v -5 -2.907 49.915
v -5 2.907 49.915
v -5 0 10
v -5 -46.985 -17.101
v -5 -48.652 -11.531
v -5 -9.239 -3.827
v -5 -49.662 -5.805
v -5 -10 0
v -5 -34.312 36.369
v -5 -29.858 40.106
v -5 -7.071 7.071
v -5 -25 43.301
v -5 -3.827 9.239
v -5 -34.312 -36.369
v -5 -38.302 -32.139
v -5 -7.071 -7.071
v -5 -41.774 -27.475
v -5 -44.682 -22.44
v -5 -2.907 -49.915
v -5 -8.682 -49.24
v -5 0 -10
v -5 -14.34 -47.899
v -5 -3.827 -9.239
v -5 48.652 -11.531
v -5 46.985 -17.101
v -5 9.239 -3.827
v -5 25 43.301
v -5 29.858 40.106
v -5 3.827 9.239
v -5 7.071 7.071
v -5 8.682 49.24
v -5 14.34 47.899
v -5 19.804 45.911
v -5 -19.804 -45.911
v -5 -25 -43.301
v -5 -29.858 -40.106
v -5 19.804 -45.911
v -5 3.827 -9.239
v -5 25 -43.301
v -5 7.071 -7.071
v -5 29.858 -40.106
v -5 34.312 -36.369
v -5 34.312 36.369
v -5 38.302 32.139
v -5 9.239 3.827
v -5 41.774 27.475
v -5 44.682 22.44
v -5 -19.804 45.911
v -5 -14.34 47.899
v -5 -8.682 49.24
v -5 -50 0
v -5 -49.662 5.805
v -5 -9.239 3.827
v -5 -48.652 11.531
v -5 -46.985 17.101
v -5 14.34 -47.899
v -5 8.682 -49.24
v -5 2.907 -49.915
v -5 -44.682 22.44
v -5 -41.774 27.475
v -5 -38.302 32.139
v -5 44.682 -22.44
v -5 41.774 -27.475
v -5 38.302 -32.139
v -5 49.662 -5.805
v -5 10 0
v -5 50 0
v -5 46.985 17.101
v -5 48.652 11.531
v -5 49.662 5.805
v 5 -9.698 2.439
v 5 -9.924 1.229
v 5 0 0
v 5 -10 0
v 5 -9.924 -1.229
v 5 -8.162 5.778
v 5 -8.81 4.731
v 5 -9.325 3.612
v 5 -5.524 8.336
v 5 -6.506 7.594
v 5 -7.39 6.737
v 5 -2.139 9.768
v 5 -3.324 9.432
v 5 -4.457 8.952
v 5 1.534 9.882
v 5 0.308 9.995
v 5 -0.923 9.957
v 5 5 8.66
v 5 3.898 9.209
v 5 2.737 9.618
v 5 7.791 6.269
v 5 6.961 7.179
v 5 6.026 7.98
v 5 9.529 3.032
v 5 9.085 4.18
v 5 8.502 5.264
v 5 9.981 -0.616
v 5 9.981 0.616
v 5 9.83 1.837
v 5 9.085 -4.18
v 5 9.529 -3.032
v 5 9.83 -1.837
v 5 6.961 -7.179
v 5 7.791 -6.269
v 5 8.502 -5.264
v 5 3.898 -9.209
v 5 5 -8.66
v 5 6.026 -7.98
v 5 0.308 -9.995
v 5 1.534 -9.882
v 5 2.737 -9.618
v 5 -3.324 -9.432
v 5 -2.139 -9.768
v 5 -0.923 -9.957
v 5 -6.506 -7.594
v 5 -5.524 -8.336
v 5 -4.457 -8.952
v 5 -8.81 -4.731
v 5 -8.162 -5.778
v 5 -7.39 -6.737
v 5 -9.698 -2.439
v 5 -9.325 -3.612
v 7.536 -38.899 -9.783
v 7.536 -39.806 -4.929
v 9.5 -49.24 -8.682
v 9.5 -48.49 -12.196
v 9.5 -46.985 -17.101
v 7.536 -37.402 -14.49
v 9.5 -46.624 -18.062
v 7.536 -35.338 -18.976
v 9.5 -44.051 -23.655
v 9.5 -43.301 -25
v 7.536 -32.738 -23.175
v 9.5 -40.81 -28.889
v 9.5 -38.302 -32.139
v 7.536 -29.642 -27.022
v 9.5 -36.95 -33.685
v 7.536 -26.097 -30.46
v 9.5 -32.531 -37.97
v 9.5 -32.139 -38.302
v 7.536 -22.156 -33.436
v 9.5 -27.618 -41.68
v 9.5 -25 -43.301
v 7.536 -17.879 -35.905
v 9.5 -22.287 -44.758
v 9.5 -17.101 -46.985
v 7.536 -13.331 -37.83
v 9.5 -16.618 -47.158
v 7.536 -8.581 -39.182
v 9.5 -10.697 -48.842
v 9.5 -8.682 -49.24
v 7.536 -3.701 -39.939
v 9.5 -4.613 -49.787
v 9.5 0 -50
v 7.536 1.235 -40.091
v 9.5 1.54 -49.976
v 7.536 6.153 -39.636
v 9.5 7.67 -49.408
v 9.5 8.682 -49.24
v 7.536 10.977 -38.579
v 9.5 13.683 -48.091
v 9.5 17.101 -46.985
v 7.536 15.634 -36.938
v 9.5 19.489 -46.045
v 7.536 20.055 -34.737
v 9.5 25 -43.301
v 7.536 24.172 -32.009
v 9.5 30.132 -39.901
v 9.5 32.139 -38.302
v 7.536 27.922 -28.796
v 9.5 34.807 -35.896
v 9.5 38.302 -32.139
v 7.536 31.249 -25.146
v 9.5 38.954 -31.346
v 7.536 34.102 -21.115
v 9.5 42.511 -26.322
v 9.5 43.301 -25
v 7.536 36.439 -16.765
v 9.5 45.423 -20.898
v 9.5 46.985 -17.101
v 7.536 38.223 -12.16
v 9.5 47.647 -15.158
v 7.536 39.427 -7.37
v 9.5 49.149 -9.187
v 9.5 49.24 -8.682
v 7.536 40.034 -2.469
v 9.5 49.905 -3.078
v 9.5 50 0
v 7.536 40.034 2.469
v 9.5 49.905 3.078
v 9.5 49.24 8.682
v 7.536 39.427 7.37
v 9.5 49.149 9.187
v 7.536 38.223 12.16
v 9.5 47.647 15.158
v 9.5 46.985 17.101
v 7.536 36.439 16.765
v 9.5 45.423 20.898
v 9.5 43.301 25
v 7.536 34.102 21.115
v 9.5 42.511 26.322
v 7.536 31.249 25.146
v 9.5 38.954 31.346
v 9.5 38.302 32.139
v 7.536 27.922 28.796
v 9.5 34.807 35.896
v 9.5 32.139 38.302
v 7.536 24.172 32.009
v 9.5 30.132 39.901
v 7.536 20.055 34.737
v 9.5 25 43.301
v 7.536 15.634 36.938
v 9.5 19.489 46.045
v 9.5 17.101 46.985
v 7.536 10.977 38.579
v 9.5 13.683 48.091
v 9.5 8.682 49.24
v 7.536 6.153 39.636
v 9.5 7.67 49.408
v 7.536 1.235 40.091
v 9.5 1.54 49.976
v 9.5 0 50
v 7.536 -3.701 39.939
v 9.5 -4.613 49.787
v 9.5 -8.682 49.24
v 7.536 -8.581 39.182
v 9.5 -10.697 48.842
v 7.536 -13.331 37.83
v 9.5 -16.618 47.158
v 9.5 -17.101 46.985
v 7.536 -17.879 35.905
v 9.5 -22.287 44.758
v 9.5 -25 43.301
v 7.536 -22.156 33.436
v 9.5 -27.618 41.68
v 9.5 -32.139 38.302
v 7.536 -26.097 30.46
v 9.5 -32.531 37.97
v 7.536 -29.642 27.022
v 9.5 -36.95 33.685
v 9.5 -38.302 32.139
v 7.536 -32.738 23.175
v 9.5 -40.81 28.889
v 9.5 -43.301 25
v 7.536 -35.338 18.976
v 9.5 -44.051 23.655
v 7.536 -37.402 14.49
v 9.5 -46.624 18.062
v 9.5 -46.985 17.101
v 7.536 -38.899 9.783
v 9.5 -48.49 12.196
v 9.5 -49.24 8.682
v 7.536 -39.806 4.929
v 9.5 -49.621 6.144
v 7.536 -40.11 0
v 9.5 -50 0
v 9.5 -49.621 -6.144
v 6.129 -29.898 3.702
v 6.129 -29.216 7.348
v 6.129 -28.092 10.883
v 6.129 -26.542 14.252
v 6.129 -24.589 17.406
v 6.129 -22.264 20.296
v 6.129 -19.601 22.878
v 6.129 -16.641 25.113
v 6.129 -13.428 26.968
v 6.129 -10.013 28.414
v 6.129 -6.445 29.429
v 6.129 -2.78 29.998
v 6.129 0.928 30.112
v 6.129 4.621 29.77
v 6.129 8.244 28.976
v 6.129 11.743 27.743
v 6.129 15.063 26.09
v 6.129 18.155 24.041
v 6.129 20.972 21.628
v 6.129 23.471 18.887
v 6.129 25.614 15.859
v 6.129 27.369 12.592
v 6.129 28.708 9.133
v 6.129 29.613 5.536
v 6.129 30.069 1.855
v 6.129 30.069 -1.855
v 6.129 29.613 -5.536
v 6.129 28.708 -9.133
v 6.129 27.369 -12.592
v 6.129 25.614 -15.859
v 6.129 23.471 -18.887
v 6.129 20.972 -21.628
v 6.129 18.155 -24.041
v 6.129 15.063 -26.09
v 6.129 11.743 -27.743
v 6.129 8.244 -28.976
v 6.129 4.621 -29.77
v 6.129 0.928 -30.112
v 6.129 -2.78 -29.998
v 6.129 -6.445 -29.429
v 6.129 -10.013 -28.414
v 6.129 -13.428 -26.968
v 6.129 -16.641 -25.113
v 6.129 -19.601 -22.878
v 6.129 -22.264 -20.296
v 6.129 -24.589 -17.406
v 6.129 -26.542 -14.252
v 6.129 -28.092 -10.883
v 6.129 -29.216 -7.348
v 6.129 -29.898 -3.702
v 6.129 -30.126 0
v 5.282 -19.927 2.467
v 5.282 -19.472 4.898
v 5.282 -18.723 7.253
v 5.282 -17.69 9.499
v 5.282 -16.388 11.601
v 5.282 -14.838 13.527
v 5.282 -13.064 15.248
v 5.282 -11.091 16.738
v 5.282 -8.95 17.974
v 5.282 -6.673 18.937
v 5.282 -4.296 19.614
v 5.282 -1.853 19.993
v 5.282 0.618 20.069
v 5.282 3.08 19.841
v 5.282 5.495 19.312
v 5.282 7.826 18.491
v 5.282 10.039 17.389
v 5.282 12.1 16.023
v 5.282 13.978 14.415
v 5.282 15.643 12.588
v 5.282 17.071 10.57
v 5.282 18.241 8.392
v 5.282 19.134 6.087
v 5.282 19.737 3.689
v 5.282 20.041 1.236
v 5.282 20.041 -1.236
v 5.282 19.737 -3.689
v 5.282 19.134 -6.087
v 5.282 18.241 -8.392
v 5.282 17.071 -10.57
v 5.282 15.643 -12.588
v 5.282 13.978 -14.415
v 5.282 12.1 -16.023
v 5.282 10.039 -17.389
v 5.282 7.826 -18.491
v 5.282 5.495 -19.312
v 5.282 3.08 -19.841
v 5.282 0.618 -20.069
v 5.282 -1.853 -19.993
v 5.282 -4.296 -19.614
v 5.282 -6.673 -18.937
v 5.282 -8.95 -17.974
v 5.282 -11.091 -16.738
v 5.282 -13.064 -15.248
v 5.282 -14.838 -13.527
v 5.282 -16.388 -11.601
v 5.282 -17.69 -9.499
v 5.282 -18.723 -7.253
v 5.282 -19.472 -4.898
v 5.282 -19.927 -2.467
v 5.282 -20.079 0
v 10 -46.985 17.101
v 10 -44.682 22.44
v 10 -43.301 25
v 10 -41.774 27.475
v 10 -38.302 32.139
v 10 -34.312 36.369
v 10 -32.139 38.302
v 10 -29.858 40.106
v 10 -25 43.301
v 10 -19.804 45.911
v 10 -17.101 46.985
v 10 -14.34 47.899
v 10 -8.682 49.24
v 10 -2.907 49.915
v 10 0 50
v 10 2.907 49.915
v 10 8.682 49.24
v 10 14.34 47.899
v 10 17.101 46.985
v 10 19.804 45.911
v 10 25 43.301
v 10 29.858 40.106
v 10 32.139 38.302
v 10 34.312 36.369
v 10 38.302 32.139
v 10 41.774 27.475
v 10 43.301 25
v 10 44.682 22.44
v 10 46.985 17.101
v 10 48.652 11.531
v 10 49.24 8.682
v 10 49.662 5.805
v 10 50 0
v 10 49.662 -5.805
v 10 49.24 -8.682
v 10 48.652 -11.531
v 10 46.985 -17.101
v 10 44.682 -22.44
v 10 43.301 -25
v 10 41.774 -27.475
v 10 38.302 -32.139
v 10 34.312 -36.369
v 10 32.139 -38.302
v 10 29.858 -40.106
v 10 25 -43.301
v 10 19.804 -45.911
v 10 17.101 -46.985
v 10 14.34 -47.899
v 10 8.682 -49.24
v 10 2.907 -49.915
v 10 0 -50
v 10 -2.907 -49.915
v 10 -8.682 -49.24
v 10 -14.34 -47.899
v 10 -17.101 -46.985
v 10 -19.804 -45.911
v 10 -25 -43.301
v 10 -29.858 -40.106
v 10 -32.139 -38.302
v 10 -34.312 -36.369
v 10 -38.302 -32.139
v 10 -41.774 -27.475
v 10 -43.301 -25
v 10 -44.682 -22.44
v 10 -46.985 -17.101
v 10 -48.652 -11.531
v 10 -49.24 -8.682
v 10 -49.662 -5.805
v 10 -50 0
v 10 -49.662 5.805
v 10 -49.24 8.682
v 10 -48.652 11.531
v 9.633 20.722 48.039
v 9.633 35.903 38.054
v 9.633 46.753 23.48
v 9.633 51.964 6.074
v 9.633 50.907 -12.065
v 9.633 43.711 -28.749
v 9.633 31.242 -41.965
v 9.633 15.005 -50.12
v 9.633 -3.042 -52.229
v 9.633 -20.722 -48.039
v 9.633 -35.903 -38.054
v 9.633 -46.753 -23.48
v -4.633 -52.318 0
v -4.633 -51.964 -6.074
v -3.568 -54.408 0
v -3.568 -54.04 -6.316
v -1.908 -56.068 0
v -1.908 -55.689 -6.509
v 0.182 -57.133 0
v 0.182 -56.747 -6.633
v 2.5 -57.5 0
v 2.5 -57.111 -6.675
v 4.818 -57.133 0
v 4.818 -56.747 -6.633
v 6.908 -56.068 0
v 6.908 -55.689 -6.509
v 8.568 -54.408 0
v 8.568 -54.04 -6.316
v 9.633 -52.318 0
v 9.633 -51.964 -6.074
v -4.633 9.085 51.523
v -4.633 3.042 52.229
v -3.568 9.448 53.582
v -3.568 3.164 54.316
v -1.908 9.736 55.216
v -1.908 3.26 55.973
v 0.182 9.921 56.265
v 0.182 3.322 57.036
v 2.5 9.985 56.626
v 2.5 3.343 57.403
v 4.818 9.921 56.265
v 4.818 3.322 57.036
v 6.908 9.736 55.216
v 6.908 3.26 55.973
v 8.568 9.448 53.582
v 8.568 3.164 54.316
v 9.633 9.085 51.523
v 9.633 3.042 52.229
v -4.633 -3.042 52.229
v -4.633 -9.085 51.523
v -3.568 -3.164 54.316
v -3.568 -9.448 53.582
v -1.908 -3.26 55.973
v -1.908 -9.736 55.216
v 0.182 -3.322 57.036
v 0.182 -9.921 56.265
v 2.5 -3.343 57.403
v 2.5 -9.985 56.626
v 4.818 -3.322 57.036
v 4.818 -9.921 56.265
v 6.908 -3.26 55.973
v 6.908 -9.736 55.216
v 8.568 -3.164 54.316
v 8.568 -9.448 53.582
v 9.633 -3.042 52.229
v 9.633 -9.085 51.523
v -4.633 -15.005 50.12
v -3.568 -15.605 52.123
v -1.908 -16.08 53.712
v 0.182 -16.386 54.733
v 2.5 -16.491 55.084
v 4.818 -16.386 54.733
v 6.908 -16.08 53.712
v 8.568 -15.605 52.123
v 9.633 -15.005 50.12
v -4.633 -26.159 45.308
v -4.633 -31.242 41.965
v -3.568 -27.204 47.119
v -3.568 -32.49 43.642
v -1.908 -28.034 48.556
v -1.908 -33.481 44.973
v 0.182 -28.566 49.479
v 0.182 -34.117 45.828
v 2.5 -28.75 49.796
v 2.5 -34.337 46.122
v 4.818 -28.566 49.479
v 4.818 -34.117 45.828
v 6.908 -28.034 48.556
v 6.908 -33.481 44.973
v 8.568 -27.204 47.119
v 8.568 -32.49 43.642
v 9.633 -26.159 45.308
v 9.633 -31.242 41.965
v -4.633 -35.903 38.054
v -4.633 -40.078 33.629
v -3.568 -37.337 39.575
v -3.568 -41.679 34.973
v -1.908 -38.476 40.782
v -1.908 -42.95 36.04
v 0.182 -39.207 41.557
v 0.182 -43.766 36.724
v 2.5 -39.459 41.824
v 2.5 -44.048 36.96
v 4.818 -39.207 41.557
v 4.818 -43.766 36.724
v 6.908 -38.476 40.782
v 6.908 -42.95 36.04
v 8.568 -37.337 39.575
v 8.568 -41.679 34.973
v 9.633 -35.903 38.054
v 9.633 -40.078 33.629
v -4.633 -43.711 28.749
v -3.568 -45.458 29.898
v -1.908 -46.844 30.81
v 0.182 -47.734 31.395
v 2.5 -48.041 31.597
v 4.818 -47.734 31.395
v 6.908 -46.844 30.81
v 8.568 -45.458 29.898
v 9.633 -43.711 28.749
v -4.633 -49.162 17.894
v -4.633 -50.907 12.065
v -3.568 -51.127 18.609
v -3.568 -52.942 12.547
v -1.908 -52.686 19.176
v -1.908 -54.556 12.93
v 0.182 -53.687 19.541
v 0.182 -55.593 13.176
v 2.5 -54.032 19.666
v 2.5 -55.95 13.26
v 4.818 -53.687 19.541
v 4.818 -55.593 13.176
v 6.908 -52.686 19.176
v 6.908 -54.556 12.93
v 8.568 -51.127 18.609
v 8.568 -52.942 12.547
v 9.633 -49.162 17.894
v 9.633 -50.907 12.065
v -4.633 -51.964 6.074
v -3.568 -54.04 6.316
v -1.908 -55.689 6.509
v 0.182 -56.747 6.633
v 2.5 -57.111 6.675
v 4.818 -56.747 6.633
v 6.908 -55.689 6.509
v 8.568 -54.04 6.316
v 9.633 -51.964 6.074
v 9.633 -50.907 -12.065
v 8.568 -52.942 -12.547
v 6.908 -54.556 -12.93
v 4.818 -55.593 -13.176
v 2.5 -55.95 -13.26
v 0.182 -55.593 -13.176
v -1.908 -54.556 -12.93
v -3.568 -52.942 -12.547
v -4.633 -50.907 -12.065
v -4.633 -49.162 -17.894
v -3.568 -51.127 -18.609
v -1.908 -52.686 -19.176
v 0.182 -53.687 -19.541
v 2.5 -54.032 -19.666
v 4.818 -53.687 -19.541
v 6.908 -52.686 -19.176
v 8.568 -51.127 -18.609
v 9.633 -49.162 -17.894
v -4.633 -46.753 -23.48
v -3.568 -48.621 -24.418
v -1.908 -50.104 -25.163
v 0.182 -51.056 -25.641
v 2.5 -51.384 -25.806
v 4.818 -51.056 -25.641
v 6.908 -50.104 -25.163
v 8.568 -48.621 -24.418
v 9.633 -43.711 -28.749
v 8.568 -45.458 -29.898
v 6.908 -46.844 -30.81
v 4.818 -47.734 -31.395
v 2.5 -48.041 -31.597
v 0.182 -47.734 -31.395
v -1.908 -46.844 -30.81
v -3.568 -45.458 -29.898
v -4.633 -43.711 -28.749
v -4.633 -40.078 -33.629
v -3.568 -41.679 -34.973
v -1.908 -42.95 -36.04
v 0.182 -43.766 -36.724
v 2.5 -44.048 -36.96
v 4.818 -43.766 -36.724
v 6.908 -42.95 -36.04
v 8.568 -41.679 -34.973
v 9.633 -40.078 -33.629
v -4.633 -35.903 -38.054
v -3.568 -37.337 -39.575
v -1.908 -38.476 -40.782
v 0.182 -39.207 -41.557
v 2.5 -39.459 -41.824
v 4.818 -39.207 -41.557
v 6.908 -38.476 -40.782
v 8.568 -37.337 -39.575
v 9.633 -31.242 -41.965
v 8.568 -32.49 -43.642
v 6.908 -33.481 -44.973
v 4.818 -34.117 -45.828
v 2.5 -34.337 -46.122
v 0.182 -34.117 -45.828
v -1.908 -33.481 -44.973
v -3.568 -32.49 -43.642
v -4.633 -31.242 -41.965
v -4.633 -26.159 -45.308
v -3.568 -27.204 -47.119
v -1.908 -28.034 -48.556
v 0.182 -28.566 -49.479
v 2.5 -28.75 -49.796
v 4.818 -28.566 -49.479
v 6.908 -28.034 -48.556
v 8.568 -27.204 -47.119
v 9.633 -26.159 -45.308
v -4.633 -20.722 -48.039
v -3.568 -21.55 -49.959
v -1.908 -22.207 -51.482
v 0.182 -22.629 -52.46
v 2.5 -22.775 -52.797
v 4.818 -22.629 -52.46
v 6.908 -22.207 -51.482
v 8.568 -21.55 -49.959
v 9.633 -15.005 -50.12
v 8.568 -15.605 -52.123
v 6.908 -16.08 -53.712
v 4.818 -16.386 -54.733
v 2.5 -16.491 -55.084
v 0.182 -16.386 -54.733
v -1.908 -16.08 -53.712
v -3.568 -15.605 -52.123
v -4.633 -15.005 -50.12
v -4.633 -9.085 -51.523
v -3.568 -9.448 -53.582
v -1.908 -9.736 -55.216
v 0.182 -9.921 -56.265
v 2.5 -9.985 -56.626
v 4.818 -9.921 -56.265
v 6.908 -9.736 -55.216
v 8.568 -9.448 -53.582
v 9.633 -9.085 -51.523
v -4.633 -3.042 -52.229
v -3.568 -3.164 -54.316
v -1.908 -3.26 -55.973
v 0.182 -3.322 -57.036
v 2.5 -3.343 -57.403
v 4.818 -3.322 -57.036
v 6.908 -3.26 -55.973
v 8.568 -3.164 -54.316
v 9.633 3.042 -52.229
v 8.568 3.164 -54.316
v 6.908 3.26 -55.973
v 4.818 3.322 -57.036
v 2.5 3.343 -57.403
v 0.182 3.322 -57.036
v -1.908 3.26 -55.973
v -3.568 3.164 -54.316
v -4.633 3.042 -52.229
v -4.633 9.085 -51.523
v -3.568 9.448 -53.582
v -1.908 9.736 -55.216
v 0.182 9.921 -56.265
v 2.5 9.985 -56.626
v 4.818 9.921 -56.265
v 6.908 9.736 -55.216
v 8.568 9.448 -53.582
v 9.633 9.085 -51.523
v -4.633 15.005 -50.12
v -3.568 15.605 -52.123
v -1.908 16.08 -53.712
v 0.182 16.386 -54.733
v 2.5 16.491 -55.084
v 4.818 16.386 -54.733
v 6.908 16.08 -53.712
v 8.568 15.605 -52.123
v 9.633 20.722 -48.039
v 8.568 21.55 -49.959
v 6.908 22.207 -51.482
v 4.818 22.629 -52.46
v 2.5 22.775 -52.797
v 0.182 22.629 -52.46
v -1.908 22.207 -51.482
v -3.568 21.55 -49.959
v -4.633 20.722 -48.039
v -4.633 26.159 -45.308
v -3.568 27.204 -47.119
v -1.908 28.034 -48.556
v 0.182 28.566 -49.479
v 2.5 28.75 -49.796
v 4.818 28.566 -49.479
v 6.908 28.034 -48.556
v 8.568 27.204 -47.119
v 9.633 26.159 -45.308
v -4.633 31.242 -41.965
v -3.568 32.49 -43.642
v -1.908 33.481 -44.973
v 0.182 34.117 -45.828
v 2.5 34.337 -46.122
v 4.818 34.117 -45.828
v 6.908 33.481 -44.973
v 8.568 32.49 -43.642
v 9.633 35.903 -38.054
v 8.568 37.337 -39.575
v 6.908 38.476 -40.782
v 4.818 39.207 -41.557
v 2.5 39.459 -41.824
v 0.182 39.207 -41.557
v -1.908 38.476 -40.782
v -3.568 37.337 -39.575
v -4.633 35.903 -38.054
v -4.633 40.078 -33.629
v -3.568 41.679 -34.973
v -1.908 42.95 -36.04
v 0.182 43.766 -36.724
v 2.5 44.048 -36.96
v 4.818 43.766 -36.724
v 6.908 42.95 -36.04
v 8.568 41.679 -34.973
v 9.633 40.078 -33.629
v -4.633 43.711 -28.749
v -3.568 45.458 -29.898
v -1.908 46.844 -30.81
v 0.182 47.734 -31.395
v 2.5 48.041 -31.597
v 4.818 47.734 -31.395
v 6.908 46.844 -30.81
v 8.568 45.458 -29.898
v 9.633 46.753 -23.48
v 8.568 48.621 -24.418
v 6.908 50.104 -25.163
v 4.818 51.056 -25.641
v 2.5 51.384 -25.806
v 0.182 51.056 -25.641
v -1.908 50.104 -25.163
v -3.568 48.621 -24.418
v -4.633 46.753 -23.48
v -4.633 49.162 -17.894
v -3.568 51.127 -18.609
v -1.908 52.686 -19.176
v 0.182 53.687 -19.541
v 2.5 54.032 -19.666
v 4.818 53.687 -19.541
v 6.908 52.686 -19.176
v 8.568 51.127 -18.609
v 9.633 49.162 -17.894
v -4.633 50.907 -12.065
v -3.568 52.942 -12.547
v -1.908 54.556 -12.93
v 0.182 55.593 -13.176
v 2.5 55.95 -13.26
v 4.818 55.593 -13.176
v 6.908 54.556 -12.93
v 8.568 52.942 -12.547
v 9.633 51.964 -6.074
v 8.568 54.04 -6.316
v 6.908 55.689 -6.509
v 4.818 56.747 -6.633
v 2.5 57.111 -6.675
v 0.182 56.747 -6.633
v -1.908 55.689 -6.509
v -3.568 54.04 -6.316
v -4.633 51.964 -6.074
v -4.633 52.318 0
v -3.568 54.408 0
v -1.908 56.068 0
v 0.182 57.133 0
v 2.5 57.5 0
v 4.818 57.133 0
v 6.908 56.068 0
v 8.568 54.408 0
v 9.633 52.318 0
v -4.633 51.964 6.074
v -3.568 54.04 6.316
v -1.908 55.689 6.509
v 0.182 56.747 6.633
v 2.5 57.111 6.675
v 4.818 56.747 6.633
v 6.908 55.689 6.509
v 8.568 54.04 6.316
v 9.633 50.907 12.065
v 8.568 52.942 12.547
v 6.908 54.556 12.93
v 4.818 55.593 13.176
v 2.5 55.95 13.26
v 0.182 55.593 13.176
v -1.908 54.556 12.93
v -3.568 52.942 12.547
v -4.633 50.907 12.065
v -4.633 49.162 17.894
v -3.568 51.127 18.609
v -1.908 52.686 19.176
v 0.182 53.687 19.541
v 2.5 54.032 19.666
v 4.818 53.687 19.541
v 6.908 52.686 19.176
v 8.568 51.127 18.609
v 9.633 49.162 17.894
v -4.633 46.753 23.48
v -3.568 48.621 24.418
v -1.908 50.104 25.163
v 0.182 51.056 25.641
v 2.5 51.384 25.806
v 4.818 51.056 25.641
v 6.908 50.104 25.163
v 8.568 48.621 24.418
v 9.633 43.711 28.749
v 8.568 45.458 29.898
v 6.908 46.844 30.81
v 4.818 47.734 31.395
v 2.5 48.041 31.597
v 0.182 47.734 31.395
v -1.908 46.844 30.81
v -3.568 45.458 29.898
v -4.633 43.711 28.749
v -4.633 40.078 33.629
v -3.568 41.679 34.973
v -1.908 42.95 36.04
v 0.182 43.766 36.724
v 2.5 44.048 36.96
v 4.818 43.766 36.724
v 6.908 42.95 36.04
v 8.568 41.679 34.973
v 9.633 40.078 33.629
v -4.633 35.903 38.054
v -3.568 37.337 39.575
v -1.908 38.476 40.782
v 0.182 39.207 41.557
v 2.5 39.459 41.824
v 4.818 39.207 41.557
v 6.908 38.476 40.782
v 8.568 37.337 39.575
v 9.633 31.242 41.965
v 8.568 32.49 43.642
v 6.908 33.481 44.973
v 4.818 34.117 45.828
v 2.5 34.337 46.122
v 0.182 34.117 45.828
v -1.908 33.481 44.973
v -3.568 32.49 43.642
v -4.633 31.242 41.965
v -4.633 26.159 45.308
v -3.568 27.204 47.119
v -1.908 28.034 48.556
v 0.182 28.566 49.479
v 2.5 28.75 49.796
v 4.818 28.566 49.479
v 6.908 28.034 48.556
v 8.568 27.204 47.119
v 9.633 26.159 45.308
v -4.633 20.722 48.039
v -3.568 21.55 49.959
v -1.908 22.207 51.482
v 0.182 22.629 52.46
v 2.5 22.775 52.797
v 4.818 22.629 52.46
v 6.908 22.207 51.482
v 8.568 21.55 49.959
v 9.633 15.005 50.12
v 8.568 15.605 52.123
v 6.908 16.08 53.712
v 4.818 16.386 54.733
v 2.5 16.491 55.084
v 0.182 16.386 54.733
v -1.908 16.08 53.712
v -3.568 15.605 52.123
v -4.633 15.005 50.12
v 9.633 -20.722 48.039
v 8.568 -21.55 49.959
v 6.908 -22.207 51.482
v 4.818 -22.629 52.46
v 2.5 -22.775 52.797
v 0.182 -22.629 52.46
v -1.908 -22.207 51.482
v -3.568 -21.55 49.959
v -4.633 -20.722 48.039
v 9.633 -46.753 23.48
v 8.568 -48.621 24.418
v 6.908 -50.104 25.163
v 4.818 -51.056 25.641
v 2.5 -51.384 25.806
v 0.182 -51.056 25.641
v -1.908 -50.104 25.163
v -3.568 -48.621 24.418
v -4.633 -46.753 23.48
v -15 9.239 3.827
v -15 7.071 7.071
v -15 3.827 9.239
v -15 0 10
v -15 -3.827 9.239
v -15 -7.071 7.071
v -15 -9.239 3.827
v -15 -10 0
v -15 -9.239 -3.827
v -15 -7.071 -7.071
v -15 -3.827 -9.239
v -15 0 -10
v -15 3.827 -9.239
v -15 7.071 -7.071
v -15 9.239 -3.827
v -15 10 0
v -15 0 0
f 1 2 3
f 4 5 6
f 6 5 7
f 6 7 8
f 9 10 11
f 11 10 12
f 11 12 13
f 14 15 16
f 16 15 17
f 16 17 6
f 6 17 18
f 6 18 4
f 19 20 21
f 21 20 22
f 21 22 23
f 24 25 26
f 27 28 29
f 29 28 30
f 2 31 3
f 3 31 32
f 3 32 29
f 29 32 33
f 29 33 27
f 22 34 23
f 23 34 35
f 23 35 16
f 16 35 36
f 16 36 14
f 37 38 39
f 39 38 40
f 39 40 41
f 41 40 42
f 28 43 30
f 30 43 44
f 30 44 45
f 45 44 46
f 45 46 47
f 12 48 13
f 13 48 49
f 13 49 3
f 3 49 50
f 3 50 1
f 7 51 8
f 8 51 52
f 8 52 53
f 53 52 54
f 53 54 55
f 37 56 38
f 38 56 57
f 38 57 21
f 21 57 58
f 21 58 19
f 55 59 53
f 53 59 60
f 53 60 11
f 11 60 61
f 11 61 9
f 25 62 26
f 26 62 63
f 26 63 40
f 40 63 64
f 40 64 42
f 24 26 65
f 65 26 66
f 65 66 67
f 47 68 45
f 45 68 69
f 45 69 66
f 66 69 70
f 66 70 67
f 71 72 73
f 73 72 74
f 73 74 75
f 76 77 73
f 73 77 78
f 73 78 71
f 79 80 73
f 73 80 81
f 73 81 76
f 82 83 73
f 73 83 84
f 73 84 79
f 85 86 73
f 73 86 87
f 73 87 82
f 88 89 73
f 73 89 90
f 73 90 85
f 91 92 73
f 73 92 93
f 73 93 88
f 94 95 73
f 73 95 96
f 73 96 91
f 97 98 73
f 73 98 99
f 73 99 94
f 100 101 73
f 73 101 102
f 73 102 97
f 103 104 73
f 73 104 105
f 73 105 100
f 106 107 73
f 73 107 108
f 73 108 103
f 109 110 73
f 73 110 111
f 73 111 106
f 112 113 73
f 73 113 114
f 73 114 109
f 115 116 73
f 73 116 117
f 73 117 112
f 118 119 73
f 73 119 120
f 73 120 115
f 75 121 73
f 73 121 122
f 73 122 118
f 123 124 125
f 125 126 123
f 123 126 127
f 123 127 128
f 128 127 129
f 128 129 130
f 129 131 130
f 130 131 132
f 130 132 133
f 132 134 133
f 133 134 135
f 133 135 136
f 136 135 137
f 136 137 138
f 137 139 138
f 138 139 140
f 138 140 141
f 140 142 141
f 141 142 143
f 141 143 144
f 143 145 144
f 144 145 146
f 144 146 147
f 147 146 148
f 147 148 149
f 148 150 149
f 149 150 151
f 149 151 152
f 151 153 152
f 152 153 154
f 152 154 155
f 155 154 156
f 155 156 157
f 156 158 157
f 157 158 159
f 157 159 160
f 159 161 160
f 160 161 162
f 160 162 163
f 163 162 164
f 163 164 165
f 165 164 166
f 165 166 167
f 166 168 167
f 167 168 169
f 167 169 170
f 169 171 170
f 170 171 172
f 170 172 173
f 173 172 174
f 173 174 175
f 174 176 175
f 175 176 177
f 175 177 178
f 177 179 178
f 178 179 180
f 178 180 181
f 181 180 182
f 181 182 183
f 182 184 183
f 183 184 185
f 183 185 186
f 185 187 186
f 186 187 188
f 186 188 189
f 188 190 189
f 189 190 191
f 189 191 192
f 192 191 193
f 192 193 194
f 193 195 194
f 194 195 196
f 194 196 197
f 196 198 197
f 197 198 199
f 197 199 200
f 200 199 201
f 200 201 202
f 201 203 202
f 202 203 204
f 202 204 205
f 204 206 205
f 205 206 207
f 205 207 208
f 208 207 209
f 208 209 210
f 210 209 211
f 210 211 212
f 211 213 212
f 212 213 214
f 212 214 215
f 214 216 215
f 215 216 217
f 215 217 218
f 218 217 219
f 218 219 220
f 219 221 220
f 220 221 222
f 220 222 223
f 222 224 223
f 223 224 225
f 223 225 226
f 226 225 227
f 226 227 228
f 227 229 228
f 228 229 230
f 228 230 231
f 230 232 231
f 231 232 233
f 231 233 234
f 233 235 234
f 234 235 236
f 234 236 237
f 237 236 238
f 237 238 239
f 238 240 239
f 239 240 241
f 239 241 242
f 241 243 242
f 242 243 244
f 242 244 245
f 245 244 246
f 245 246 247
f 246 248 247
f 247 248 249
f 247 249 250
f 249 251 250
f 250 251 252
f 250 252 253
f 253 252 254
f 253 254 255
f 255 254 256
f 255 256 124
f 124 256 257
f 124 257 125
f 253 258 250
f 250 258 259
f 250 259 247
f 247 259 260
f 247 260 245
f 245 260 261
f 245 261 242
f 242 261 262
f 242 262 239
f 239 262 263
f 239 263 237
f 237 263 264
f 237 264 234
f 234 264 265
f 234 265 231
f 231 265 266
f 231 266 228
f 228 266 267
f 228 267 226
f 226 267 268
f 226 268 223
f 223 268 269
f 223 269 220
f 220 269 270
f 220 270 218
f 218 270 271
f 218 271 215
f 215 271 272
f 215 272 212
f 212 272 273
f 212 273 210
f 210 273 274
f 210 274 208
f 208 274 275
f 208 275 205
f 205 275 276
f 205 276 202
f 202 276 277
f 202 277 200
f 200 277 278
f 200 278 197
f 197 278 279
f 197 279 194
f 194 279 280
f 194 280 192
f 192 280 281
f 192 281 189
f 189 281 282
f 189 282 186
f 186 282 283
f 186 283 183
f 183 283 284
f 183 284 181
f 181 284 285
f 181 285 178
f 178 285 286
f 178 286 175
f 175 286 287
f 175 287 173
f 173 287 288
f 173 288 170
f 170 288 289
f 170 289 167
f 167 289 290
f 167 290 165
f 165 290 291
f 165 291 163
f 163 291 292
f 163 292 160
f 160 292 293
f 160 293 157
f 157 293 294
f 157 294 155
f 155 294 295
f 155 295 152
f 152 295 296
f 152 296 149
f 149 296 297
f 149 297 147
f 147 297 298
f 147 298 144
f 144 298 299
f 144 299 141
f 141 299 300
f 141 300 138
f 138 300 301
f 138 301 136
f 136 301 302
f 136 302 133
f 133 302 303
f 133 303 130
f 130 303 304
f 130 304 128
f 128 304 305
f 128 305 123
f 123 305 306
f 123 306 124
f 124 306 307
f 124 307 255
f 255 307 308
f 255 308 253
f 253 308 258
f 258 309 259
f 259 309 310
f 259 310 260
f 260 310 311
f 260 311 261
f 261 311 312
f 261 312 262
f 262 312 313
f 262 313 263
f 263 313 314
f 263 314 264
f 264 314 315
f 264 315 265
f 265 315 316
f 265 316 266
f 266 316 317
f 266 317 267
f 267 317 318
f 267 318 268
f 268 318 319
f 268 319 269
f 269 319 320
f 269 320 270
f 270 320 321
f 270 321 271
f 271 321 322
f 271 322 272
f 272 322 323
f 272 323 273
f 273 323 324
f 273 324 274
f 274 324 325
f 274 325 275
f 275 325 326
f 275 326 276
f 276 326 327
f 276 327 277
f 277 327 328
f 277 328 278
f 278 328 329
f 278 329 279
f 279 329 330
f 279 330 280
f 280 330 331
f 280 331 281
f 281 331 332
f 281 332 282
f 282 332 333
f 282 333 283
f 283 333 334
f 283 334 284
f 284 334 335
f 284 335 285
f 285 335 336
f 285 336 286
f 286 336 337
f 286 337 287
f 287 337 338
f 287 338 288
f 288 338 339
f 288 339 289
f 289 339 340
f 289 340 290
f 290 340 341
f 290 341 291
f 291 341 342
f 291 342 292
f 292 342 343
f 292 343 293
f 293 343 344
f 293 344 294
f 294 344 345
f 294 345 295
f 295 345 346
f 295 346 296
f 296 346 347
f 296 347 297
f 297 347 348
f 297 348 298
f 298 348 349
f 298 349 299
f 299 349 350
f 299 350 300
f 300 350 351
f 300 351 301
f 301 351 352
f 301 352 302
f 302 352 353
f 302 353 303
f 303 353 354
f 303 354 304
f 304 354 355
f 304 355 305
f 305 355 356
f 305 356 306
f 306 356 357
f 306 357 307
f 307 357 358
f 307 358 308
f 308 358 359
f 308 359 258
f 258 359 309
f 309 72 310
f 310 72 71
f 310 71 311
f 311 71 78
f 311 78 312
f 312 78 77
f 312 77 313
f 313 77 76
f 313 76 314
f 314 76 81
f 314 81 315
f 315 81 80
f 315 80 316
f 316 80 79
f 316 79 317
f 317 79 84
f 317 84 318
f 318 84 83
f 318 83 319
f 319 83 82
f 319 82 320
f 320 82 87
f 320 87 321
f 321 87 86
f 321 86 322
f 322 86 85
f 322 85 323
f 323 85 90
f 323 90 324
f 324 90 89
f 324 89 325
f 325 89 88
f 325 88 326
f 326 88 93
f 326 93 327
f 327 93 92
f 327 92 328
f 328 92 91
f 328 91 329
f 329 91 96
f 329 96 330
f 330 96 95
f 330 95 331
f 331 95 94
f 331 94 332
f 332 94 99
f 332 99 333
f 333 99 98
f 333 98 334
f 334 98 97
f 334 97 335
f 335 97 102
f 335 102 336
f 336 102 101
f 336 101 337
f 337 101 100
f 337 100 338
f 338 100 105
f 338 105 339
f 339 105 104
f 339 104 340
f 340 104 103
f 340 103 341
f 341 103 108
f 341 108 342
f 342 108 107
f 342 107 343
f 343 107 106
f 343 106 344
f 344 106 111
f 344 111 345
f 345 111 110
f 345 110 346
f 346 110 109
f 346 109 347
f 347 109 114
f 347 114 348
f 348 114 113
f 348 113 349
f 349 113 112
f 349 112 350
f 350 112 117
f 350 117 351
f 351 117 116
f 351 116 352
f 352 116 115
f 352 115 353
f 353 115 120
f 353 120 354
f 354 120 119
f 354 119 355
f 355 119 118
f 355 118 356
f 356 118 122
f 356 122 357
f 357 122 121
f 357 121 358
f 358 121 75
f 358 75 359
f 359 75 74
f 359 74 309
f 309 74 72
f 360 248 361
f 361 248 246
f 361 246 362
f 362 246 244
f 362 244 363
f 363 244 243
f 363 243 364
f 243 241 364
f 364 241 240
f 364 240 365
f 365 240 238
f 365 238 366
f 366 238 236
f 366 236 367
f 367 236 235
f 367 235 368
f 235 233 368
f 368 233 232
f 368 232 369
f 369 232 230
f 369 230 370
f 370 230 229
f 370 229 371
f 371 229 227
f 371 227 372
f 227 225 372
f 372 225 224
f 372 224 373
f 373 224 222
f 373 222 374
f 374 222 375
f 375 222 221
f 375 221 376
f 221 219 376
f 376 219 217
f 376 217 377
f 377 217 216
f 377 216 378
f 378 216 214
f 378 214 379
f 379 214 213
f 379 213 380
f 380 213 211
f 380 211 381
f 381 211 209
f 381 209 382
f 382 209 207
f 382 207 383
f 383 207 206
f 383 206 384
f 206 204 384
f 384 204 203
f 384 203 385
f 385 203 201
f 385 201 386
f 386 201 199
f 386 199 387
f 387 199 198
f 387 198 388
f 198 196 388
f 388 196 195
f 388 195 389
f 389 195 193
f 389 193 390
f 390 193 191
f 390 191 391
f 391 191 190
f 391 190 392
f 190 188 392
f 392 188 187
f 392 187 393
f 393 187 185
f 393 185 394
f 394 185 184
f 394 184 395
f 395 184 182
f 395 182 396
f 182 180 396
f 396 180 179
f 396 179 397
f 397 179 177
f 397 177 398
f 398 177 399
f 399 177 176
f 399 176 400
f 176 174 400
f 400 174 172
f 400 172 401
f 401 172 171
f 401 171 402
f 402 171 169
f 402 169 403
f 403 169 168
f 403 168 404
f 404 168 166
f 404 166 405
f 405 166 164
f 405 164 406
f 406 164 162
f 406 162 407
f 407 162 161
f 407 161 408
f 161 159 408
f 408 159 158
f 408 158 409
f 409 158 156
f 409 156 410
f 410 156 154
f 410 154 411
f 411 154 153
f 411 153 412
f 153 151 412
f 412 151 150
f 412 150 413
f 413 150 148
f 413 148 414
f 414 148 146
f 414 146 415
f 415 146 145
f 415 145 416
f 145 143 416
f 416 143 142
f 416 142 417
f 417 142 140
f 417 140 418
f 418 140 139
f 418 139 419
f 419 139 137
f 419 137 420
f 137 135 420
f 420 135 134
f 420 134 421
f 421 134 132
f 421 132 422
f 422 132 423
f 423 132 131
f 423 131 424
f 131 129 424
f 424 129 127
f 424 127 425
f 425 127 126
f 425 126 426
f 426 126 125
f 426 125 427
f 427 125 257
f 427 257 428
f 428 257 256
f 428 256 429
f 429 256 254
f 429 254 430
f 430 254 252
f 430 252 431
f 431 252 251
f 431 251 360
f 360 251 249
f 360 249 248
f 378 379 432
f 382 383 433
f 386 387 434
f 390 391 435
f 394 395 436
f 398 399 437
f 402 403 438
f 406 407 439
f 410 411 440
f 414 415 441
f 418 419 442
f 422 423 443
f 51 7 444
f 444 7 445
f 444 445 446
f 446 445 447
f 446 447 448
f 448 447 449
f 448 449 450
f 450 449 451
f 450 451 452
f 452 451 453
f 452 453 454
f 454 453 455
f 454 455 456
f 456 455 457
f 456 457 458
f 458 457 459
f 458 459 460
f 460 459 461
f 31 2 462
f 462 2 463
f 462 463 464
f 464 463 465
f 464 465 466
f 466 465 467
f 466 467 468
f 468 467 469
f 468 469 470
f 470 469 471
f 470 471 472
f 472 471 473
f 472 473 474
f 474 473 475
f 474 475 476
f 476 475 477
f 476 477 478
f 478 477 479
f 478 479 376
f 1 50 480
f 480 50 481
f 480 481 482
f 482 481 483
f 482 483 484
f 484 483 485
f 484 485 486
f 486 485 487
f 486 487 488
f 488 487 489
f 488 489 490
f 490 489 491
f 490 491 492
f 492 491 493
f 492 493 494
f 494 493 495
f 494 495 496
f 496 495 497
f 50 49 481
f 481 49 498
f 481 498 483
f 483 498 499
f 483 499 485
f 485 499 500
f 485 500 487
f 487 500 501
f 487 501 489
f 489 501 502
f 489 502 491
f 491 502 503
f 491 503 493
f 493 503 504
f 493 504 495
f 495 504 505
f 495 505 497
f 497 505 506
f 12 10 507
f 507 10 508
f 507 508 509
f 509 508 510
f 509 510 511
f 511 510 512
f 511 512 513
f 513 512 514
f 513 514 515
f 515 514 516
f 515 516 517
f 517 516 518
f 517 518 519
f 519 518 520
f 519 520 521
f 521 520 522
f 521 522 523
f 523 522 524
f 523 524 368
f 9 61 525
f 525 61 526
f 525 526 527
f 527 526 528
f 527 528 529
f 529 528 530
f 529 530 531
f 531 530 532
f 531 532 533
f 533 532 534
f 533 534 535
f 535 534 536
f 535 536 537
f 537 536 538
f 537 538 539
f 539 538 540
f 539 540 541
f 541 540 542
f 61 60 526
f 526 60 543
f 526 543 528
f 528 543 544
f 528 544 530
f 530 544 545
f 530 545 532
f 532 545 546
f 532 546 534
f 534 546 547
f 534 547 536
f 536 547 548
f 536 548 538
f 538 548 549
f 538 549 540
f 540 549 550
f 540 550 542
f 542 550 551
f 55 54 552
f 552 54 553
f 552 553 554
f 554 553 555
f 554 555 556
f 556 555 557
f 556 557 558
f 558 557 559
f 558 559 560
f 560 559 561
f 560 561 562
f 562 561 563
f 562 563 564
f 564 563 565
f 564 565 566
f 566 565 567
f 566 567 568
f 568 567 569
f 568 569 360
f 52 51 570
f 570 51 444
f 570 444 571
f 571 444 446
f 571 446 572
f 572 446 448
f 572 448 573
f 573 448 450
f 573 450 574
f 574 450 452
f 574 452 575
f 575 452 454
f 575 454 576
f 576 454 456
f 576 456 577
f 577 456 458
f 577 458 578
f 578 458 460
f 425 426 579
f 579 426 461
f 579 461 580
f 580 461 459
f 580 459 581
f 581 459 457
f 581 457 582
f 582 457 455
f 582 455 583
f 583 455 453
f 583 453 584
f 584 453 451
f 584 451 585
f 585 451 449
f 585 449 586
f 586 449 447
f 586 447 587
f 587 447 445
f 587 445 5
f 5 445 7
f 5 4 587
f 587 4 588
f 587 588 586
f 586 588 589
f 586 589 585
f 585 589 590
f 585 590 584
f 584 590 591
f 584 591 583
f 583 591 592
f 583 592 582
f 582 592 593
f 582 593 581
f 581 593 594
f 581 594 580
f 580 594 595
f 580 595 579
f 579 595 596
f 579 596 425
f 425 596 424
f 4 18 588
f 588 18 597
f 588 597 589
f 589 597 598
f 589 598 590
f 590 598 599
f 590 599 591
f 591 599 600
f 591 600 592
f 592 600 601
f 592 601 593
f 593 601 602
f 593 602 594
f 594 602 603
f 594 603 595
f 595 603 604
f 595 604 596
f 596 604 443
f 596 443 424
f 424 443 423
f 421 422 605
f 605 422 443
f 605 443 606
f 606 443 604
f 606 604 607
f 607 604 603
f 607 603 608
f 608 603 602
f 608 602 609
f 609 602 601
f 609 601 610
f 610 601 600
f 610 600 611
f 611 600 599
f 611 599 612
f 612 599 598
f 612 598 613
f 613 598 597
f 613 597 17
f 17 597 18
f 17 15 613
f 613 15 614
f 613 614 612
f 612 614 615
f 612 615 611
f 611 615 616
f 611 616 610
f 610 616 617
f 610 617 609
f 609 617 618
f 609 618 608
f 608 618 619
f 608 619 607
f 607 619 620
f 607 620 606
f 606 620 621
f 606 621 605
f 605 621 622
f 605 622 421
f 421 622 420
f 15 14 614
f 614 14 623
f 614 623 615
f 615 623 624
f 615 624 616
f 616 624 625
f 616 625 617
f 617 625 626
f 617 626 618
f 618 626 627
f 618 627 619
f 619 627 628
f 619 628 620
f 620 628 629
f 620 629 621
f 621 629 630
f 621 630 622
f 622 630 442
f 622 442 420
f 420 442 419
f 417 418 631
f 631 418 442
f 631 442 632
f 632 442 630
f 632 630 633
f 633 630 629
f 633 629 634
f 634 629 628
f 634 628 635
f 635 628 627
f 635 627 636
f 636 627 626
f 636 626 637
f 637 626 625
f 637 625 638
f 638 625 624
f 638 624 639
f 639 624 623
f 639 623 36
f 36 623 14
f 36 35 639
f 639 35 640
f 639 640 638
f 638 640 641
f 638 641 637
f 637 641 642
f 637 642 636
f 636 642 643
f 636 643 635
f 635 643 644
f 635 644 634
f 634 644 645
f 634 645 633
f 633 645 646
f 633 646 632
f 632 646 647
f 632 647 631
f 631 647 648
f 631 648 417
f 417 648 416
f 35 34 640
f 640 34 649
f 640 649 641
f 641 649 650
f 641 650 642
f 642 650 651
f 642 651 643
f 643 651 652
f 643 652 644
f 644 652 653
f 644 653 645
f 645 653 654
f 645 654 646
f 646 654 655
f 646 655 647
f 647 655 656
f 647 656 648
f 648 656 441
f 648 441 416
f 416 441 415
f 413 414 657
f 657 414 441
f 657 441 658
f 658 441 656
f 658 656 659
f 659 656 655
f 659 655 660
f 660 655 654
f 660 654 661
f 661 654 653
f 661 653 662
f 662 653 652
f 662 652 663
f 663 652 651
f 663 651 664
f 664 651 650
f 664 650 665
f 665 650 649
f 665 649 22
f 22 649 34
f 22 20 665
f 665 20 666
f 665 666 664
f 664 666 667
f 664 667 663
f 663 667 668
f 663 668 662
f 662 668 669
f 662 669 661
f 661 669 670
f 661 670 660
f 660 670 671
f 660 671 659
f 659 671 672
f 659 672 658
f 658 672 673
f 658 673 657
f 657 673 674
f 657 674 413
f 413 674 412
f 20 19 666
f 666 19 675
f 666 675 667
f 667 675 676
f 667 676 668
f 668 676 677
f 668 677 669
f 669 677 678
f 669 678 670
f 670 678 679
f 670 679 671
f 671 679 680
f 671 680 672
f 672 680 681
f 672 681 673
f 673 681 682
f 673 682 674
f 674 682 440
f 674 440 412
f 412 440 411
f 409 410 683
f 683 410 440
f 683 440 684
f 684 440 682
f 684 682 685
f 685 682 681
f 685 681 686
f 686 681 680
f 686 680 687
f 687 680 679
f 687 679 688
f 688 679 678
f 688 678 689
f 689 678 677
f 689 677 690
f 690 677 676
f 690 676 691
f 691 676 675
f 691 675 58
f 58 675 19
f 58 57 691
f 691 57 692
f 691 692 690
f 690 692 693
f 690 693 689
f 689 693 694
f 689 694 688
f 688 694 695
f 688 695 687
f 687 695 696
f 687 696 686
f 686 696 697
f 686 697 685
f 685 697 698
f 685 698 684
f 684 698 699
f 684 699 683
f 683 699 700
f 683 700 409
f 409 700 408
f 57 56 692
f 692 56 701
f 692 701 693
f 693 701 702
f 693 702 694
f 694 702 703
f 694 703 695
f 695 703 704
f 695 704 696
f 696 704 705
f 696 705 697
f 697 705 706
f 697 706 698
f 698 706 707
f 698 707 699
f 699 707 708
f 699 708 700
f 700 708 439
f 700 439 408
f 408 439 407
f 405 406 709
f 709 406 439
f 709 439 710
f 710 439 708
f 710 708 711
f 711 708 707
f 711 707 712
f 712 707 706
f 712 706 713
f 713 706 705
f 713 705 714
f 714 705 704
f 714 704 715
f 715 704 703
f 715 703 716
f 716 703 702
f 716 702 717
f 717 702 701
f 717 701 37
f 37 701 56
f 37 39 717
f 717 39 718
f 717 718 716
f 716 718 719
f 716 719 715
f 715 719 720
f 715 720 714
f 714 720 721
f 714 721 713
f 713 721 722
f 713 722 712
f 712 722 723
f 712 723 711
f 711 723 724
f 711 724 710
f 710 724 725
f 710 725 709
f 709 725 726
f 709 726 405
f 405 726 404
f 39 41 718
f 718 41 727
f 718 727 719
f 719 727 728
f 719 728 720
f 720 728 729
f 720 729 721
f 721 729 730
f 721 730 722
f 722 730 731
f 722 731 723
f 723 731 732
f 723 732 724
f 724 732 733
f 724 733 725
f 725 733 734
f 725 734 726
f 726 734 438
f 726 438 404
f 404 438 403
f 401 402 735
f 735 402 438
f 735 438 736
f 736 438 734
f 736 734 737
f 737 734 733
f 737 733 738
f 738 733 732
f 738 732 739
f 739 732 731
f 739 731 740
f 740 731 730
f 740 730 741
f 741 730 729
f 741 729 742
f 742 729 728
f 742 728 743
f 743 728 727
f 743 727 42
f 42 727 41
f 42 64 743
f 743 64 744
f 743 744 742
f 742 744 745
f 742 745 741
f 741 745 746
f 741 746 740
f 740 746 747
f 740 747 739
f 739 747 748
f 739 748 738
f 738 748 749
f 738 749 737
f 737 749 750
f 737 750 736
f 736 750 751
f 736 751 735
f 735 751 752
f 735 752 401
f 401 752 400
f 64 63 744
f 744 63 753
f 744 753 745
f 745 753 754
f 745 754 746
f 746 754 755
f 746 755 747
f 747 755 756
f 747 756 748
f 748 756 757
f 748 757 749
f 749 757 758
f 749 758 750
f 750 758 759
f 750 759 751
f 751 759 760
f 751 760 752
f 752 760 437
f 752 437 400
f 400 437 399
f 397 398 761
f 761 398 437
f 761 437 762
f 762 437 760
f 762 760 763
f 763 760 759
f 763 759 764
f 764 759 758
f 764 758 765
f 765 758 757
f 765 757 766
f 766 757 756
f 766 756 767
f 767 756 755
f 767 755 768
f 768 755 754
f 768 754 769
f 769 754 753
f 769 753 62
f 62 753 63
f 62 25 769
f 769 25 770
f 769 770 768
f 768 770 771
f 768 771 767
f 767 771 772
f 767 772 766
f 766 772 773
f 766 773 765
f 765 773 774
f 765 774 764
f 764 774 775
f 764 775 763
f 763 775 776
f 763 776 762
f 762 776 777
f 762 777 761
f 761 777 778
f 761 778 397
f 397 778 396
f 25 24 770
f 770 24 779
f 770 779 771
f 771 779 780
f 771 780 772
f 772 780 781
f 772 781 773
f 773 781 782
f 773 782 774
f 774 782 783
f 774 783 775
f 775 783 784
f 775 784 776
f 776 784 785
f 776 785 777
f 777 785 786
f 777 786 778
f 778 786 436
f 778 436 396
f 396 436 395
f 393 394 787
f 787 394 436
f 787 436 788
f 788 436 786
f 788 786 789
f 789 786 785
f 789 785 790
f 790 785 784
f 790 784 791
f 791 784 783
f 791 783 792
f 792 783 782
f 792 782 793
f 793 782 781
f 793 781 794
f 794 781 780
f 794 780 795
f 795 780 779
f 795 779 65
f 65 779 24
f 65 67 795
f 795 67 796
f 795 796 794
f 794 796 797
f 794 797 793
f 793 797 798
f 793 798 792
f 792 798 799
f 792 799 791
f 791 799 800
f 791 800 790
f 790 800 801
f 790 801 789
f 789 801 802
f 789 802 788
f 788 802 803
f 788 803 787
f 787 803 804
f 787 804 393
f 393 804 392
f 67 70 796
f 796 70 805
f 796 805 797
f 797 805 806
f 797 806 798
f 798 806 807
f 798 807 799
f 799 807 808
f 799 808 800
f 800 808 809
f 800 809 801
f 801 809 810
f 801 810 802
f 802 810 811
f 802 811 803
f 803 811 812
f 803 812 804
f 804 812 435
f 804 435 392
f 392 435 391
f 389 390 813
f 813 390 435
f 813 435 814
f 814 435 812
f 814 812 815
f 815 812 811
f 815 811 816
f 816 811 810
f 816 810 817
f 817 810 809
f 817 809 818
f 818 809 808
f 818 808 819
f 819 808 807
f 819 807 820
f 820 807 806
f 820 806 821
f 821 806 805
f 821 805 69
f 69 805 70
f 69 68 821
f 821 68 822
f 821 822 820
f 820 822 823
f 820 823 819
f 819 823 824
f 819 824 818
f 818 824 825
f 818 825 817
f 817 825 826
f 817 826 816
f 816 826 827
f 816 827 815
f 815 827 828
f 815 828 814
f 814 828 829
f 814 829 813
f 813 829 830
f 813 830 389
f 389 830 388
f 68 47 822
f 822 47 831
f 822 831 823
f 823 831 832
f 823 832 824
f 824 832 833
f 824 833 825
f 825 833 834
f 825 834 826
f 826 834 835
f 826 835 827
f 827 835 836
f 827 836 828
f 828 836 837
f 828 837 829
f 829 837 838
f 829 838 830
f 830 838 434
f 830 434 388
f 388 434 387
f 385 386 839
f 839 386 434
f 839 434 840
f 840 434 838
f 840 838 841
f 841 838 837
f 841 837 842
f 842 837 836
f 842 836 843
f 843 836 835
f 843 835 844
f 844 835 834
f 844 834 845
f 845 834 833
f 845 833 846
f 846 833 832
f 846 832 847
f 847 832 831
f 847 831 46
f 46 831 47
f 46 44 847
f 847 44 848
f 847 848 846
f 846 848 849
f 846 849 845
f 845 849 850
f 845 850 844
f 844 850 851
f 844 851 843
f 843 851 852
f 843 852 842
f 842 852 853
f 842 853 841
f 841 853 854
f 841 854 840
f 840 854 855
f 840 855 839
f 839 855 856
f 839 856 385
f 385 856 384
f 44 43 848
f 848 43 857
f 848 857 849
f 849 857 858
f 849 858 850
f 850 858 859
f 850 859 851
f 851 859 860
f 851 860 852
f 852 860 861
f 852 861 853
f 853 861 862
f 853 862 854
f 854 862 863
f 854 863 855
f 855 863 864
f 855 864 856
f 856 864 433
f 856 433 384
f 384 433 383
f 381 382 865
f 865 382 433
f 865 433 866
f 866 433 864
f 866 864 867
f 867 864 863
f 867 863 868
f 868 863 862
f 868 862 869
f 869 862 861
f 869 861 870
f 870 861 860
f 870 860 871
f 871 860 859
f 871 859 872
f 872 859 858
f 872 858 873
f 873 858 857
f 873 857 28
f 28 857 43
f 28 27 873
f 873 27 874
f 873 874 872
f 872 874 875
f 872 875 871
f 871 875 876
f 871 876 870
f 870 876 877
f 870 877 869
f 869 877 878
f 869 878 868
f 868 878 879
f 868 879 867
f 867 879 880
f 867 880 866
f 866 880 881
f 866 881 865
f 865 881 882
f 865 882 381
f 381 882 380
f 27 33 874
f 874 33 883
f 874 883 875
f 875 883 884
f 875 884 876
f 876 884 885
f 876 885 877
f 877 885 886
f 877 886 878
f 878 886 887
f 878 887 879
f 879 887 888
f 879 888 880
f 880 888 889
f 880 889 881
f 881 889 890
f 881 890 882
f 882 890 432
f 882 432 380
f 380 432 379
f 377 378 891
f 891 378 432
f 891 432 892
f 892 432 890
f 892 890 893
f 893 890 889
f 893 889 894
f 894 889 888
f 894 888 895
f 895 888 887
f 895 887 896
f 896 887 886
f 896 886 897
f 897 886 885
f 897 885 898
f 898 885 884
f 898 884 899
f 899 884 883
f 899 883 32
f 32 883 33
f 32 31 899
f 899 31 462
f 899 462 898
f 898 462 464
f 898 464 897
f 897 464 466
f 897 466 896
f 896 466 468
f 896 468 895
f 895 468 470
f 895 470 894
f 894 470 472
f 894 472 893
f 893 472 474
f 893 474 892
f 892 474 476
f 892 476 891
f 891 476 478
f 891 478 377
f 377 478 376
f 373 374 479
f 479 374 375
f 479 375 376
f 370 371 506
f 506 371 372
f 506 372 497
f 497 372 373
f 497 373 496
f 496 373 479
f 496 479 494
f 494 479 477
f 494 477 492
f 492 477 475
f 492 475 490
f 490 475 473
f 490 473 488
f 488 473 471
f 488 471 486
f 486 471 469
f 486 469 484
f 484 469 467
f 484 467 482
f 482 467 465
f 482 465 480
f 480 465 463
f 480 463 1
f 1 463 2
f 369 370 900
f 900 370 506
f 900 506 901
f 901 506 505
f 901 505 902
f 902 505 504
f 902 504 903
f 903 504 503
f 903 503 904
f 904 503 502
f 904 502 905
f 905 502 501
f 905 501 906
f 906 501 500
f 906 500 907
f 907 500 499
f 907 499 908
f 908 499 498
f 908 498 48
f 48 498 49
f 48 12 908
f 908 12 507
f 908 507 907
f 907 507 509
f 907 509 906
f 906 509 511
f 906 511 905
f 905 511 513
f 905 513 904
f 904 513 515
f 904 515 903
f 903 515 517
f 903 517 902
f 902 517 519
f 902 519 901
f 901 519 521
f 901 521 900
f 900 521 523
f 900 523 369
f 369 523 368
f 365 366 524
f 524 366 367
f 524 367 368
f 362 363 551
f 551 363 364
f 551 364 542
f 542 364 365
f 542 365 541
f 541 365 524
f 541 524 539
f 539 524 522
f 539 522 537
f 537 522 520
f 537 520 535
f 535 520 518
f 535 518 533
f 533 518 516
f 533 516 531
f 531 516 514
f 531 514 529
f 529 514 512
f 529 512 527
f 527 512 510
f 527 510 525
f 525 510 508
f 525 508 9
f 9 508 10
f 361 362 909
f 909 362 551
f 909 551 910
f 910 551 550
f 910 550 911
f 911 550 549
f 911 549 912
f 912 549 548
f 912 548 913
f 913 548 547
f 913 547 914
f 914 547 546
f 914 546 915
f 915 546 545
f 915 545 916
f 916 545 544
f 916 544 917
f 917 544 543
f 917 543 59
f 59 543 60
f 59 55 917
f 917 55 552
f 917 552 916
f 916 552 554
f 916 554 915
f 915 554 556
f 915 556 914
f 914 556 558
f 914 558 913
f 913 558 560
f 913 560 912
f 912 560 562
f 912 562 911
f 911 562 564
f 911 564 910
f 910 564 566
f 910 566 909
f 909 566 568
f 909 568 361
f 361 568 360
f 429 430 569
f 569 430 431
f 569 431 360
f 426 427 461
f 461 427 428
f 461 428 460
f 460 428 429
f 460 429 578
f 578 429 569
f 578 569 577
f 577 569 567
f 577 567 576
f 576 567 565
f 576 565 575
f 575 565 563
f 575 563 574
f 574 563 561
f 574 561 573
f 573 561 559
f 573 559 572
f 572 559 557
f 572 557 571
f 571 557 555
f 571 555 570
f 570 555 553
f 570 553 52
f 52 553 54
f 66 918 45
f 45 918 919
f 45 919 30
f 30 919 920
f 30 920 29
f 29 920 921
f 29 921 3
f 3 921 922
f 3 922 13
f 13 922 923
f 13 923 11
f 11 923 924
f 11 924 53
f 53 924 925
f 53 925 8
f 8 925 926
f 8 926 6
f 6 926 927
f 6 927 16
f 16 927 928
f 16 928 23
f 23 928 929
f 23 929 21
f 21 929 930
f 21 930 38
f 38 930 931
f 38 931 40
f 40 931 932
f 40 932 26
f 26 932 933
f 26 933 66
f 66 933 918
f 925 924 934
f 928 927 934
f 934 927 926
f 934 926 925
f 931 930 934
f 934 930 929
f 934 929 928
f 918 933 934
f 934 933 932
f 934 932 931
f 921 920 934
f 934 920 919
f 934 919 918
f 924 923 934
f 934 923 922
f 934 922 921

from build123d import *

# Parameters (mm, degrees)
SKETCH3_R           = 10
BOSS_EXTRUDE1_DEPTH = 10


with BuildPart() as part:
    # Sketch2 → Revolve1 (revolve)
    with BuildSketch(Plane.XY):
        with BuildLine():
            Line((-5, 0), (5, 0))
            Line((5, 0), (5, 10))
            ThreePointArc((5, 10), (6.128537222, 30.126164563), (9.5, 50))
            Line((9.5, 50), (10, 50))
            ThreePointArc((10, 50), (2.5, 57.5), (-5, 50))
            Line((-5, 50), (-5, 0))
        make_face()
    revolve(axis=Axis((-5, 0, 0), (1, 0, 0)))

    # Sketch3 → Boss-Extrude1 (add)
    with BuildSketch(Plane.ZY.offset(5)):
        Circle(SKETCH3_R)
    extrude(amount=BOSS_EXTRUDE1_DEPTH)


solid = part.part
